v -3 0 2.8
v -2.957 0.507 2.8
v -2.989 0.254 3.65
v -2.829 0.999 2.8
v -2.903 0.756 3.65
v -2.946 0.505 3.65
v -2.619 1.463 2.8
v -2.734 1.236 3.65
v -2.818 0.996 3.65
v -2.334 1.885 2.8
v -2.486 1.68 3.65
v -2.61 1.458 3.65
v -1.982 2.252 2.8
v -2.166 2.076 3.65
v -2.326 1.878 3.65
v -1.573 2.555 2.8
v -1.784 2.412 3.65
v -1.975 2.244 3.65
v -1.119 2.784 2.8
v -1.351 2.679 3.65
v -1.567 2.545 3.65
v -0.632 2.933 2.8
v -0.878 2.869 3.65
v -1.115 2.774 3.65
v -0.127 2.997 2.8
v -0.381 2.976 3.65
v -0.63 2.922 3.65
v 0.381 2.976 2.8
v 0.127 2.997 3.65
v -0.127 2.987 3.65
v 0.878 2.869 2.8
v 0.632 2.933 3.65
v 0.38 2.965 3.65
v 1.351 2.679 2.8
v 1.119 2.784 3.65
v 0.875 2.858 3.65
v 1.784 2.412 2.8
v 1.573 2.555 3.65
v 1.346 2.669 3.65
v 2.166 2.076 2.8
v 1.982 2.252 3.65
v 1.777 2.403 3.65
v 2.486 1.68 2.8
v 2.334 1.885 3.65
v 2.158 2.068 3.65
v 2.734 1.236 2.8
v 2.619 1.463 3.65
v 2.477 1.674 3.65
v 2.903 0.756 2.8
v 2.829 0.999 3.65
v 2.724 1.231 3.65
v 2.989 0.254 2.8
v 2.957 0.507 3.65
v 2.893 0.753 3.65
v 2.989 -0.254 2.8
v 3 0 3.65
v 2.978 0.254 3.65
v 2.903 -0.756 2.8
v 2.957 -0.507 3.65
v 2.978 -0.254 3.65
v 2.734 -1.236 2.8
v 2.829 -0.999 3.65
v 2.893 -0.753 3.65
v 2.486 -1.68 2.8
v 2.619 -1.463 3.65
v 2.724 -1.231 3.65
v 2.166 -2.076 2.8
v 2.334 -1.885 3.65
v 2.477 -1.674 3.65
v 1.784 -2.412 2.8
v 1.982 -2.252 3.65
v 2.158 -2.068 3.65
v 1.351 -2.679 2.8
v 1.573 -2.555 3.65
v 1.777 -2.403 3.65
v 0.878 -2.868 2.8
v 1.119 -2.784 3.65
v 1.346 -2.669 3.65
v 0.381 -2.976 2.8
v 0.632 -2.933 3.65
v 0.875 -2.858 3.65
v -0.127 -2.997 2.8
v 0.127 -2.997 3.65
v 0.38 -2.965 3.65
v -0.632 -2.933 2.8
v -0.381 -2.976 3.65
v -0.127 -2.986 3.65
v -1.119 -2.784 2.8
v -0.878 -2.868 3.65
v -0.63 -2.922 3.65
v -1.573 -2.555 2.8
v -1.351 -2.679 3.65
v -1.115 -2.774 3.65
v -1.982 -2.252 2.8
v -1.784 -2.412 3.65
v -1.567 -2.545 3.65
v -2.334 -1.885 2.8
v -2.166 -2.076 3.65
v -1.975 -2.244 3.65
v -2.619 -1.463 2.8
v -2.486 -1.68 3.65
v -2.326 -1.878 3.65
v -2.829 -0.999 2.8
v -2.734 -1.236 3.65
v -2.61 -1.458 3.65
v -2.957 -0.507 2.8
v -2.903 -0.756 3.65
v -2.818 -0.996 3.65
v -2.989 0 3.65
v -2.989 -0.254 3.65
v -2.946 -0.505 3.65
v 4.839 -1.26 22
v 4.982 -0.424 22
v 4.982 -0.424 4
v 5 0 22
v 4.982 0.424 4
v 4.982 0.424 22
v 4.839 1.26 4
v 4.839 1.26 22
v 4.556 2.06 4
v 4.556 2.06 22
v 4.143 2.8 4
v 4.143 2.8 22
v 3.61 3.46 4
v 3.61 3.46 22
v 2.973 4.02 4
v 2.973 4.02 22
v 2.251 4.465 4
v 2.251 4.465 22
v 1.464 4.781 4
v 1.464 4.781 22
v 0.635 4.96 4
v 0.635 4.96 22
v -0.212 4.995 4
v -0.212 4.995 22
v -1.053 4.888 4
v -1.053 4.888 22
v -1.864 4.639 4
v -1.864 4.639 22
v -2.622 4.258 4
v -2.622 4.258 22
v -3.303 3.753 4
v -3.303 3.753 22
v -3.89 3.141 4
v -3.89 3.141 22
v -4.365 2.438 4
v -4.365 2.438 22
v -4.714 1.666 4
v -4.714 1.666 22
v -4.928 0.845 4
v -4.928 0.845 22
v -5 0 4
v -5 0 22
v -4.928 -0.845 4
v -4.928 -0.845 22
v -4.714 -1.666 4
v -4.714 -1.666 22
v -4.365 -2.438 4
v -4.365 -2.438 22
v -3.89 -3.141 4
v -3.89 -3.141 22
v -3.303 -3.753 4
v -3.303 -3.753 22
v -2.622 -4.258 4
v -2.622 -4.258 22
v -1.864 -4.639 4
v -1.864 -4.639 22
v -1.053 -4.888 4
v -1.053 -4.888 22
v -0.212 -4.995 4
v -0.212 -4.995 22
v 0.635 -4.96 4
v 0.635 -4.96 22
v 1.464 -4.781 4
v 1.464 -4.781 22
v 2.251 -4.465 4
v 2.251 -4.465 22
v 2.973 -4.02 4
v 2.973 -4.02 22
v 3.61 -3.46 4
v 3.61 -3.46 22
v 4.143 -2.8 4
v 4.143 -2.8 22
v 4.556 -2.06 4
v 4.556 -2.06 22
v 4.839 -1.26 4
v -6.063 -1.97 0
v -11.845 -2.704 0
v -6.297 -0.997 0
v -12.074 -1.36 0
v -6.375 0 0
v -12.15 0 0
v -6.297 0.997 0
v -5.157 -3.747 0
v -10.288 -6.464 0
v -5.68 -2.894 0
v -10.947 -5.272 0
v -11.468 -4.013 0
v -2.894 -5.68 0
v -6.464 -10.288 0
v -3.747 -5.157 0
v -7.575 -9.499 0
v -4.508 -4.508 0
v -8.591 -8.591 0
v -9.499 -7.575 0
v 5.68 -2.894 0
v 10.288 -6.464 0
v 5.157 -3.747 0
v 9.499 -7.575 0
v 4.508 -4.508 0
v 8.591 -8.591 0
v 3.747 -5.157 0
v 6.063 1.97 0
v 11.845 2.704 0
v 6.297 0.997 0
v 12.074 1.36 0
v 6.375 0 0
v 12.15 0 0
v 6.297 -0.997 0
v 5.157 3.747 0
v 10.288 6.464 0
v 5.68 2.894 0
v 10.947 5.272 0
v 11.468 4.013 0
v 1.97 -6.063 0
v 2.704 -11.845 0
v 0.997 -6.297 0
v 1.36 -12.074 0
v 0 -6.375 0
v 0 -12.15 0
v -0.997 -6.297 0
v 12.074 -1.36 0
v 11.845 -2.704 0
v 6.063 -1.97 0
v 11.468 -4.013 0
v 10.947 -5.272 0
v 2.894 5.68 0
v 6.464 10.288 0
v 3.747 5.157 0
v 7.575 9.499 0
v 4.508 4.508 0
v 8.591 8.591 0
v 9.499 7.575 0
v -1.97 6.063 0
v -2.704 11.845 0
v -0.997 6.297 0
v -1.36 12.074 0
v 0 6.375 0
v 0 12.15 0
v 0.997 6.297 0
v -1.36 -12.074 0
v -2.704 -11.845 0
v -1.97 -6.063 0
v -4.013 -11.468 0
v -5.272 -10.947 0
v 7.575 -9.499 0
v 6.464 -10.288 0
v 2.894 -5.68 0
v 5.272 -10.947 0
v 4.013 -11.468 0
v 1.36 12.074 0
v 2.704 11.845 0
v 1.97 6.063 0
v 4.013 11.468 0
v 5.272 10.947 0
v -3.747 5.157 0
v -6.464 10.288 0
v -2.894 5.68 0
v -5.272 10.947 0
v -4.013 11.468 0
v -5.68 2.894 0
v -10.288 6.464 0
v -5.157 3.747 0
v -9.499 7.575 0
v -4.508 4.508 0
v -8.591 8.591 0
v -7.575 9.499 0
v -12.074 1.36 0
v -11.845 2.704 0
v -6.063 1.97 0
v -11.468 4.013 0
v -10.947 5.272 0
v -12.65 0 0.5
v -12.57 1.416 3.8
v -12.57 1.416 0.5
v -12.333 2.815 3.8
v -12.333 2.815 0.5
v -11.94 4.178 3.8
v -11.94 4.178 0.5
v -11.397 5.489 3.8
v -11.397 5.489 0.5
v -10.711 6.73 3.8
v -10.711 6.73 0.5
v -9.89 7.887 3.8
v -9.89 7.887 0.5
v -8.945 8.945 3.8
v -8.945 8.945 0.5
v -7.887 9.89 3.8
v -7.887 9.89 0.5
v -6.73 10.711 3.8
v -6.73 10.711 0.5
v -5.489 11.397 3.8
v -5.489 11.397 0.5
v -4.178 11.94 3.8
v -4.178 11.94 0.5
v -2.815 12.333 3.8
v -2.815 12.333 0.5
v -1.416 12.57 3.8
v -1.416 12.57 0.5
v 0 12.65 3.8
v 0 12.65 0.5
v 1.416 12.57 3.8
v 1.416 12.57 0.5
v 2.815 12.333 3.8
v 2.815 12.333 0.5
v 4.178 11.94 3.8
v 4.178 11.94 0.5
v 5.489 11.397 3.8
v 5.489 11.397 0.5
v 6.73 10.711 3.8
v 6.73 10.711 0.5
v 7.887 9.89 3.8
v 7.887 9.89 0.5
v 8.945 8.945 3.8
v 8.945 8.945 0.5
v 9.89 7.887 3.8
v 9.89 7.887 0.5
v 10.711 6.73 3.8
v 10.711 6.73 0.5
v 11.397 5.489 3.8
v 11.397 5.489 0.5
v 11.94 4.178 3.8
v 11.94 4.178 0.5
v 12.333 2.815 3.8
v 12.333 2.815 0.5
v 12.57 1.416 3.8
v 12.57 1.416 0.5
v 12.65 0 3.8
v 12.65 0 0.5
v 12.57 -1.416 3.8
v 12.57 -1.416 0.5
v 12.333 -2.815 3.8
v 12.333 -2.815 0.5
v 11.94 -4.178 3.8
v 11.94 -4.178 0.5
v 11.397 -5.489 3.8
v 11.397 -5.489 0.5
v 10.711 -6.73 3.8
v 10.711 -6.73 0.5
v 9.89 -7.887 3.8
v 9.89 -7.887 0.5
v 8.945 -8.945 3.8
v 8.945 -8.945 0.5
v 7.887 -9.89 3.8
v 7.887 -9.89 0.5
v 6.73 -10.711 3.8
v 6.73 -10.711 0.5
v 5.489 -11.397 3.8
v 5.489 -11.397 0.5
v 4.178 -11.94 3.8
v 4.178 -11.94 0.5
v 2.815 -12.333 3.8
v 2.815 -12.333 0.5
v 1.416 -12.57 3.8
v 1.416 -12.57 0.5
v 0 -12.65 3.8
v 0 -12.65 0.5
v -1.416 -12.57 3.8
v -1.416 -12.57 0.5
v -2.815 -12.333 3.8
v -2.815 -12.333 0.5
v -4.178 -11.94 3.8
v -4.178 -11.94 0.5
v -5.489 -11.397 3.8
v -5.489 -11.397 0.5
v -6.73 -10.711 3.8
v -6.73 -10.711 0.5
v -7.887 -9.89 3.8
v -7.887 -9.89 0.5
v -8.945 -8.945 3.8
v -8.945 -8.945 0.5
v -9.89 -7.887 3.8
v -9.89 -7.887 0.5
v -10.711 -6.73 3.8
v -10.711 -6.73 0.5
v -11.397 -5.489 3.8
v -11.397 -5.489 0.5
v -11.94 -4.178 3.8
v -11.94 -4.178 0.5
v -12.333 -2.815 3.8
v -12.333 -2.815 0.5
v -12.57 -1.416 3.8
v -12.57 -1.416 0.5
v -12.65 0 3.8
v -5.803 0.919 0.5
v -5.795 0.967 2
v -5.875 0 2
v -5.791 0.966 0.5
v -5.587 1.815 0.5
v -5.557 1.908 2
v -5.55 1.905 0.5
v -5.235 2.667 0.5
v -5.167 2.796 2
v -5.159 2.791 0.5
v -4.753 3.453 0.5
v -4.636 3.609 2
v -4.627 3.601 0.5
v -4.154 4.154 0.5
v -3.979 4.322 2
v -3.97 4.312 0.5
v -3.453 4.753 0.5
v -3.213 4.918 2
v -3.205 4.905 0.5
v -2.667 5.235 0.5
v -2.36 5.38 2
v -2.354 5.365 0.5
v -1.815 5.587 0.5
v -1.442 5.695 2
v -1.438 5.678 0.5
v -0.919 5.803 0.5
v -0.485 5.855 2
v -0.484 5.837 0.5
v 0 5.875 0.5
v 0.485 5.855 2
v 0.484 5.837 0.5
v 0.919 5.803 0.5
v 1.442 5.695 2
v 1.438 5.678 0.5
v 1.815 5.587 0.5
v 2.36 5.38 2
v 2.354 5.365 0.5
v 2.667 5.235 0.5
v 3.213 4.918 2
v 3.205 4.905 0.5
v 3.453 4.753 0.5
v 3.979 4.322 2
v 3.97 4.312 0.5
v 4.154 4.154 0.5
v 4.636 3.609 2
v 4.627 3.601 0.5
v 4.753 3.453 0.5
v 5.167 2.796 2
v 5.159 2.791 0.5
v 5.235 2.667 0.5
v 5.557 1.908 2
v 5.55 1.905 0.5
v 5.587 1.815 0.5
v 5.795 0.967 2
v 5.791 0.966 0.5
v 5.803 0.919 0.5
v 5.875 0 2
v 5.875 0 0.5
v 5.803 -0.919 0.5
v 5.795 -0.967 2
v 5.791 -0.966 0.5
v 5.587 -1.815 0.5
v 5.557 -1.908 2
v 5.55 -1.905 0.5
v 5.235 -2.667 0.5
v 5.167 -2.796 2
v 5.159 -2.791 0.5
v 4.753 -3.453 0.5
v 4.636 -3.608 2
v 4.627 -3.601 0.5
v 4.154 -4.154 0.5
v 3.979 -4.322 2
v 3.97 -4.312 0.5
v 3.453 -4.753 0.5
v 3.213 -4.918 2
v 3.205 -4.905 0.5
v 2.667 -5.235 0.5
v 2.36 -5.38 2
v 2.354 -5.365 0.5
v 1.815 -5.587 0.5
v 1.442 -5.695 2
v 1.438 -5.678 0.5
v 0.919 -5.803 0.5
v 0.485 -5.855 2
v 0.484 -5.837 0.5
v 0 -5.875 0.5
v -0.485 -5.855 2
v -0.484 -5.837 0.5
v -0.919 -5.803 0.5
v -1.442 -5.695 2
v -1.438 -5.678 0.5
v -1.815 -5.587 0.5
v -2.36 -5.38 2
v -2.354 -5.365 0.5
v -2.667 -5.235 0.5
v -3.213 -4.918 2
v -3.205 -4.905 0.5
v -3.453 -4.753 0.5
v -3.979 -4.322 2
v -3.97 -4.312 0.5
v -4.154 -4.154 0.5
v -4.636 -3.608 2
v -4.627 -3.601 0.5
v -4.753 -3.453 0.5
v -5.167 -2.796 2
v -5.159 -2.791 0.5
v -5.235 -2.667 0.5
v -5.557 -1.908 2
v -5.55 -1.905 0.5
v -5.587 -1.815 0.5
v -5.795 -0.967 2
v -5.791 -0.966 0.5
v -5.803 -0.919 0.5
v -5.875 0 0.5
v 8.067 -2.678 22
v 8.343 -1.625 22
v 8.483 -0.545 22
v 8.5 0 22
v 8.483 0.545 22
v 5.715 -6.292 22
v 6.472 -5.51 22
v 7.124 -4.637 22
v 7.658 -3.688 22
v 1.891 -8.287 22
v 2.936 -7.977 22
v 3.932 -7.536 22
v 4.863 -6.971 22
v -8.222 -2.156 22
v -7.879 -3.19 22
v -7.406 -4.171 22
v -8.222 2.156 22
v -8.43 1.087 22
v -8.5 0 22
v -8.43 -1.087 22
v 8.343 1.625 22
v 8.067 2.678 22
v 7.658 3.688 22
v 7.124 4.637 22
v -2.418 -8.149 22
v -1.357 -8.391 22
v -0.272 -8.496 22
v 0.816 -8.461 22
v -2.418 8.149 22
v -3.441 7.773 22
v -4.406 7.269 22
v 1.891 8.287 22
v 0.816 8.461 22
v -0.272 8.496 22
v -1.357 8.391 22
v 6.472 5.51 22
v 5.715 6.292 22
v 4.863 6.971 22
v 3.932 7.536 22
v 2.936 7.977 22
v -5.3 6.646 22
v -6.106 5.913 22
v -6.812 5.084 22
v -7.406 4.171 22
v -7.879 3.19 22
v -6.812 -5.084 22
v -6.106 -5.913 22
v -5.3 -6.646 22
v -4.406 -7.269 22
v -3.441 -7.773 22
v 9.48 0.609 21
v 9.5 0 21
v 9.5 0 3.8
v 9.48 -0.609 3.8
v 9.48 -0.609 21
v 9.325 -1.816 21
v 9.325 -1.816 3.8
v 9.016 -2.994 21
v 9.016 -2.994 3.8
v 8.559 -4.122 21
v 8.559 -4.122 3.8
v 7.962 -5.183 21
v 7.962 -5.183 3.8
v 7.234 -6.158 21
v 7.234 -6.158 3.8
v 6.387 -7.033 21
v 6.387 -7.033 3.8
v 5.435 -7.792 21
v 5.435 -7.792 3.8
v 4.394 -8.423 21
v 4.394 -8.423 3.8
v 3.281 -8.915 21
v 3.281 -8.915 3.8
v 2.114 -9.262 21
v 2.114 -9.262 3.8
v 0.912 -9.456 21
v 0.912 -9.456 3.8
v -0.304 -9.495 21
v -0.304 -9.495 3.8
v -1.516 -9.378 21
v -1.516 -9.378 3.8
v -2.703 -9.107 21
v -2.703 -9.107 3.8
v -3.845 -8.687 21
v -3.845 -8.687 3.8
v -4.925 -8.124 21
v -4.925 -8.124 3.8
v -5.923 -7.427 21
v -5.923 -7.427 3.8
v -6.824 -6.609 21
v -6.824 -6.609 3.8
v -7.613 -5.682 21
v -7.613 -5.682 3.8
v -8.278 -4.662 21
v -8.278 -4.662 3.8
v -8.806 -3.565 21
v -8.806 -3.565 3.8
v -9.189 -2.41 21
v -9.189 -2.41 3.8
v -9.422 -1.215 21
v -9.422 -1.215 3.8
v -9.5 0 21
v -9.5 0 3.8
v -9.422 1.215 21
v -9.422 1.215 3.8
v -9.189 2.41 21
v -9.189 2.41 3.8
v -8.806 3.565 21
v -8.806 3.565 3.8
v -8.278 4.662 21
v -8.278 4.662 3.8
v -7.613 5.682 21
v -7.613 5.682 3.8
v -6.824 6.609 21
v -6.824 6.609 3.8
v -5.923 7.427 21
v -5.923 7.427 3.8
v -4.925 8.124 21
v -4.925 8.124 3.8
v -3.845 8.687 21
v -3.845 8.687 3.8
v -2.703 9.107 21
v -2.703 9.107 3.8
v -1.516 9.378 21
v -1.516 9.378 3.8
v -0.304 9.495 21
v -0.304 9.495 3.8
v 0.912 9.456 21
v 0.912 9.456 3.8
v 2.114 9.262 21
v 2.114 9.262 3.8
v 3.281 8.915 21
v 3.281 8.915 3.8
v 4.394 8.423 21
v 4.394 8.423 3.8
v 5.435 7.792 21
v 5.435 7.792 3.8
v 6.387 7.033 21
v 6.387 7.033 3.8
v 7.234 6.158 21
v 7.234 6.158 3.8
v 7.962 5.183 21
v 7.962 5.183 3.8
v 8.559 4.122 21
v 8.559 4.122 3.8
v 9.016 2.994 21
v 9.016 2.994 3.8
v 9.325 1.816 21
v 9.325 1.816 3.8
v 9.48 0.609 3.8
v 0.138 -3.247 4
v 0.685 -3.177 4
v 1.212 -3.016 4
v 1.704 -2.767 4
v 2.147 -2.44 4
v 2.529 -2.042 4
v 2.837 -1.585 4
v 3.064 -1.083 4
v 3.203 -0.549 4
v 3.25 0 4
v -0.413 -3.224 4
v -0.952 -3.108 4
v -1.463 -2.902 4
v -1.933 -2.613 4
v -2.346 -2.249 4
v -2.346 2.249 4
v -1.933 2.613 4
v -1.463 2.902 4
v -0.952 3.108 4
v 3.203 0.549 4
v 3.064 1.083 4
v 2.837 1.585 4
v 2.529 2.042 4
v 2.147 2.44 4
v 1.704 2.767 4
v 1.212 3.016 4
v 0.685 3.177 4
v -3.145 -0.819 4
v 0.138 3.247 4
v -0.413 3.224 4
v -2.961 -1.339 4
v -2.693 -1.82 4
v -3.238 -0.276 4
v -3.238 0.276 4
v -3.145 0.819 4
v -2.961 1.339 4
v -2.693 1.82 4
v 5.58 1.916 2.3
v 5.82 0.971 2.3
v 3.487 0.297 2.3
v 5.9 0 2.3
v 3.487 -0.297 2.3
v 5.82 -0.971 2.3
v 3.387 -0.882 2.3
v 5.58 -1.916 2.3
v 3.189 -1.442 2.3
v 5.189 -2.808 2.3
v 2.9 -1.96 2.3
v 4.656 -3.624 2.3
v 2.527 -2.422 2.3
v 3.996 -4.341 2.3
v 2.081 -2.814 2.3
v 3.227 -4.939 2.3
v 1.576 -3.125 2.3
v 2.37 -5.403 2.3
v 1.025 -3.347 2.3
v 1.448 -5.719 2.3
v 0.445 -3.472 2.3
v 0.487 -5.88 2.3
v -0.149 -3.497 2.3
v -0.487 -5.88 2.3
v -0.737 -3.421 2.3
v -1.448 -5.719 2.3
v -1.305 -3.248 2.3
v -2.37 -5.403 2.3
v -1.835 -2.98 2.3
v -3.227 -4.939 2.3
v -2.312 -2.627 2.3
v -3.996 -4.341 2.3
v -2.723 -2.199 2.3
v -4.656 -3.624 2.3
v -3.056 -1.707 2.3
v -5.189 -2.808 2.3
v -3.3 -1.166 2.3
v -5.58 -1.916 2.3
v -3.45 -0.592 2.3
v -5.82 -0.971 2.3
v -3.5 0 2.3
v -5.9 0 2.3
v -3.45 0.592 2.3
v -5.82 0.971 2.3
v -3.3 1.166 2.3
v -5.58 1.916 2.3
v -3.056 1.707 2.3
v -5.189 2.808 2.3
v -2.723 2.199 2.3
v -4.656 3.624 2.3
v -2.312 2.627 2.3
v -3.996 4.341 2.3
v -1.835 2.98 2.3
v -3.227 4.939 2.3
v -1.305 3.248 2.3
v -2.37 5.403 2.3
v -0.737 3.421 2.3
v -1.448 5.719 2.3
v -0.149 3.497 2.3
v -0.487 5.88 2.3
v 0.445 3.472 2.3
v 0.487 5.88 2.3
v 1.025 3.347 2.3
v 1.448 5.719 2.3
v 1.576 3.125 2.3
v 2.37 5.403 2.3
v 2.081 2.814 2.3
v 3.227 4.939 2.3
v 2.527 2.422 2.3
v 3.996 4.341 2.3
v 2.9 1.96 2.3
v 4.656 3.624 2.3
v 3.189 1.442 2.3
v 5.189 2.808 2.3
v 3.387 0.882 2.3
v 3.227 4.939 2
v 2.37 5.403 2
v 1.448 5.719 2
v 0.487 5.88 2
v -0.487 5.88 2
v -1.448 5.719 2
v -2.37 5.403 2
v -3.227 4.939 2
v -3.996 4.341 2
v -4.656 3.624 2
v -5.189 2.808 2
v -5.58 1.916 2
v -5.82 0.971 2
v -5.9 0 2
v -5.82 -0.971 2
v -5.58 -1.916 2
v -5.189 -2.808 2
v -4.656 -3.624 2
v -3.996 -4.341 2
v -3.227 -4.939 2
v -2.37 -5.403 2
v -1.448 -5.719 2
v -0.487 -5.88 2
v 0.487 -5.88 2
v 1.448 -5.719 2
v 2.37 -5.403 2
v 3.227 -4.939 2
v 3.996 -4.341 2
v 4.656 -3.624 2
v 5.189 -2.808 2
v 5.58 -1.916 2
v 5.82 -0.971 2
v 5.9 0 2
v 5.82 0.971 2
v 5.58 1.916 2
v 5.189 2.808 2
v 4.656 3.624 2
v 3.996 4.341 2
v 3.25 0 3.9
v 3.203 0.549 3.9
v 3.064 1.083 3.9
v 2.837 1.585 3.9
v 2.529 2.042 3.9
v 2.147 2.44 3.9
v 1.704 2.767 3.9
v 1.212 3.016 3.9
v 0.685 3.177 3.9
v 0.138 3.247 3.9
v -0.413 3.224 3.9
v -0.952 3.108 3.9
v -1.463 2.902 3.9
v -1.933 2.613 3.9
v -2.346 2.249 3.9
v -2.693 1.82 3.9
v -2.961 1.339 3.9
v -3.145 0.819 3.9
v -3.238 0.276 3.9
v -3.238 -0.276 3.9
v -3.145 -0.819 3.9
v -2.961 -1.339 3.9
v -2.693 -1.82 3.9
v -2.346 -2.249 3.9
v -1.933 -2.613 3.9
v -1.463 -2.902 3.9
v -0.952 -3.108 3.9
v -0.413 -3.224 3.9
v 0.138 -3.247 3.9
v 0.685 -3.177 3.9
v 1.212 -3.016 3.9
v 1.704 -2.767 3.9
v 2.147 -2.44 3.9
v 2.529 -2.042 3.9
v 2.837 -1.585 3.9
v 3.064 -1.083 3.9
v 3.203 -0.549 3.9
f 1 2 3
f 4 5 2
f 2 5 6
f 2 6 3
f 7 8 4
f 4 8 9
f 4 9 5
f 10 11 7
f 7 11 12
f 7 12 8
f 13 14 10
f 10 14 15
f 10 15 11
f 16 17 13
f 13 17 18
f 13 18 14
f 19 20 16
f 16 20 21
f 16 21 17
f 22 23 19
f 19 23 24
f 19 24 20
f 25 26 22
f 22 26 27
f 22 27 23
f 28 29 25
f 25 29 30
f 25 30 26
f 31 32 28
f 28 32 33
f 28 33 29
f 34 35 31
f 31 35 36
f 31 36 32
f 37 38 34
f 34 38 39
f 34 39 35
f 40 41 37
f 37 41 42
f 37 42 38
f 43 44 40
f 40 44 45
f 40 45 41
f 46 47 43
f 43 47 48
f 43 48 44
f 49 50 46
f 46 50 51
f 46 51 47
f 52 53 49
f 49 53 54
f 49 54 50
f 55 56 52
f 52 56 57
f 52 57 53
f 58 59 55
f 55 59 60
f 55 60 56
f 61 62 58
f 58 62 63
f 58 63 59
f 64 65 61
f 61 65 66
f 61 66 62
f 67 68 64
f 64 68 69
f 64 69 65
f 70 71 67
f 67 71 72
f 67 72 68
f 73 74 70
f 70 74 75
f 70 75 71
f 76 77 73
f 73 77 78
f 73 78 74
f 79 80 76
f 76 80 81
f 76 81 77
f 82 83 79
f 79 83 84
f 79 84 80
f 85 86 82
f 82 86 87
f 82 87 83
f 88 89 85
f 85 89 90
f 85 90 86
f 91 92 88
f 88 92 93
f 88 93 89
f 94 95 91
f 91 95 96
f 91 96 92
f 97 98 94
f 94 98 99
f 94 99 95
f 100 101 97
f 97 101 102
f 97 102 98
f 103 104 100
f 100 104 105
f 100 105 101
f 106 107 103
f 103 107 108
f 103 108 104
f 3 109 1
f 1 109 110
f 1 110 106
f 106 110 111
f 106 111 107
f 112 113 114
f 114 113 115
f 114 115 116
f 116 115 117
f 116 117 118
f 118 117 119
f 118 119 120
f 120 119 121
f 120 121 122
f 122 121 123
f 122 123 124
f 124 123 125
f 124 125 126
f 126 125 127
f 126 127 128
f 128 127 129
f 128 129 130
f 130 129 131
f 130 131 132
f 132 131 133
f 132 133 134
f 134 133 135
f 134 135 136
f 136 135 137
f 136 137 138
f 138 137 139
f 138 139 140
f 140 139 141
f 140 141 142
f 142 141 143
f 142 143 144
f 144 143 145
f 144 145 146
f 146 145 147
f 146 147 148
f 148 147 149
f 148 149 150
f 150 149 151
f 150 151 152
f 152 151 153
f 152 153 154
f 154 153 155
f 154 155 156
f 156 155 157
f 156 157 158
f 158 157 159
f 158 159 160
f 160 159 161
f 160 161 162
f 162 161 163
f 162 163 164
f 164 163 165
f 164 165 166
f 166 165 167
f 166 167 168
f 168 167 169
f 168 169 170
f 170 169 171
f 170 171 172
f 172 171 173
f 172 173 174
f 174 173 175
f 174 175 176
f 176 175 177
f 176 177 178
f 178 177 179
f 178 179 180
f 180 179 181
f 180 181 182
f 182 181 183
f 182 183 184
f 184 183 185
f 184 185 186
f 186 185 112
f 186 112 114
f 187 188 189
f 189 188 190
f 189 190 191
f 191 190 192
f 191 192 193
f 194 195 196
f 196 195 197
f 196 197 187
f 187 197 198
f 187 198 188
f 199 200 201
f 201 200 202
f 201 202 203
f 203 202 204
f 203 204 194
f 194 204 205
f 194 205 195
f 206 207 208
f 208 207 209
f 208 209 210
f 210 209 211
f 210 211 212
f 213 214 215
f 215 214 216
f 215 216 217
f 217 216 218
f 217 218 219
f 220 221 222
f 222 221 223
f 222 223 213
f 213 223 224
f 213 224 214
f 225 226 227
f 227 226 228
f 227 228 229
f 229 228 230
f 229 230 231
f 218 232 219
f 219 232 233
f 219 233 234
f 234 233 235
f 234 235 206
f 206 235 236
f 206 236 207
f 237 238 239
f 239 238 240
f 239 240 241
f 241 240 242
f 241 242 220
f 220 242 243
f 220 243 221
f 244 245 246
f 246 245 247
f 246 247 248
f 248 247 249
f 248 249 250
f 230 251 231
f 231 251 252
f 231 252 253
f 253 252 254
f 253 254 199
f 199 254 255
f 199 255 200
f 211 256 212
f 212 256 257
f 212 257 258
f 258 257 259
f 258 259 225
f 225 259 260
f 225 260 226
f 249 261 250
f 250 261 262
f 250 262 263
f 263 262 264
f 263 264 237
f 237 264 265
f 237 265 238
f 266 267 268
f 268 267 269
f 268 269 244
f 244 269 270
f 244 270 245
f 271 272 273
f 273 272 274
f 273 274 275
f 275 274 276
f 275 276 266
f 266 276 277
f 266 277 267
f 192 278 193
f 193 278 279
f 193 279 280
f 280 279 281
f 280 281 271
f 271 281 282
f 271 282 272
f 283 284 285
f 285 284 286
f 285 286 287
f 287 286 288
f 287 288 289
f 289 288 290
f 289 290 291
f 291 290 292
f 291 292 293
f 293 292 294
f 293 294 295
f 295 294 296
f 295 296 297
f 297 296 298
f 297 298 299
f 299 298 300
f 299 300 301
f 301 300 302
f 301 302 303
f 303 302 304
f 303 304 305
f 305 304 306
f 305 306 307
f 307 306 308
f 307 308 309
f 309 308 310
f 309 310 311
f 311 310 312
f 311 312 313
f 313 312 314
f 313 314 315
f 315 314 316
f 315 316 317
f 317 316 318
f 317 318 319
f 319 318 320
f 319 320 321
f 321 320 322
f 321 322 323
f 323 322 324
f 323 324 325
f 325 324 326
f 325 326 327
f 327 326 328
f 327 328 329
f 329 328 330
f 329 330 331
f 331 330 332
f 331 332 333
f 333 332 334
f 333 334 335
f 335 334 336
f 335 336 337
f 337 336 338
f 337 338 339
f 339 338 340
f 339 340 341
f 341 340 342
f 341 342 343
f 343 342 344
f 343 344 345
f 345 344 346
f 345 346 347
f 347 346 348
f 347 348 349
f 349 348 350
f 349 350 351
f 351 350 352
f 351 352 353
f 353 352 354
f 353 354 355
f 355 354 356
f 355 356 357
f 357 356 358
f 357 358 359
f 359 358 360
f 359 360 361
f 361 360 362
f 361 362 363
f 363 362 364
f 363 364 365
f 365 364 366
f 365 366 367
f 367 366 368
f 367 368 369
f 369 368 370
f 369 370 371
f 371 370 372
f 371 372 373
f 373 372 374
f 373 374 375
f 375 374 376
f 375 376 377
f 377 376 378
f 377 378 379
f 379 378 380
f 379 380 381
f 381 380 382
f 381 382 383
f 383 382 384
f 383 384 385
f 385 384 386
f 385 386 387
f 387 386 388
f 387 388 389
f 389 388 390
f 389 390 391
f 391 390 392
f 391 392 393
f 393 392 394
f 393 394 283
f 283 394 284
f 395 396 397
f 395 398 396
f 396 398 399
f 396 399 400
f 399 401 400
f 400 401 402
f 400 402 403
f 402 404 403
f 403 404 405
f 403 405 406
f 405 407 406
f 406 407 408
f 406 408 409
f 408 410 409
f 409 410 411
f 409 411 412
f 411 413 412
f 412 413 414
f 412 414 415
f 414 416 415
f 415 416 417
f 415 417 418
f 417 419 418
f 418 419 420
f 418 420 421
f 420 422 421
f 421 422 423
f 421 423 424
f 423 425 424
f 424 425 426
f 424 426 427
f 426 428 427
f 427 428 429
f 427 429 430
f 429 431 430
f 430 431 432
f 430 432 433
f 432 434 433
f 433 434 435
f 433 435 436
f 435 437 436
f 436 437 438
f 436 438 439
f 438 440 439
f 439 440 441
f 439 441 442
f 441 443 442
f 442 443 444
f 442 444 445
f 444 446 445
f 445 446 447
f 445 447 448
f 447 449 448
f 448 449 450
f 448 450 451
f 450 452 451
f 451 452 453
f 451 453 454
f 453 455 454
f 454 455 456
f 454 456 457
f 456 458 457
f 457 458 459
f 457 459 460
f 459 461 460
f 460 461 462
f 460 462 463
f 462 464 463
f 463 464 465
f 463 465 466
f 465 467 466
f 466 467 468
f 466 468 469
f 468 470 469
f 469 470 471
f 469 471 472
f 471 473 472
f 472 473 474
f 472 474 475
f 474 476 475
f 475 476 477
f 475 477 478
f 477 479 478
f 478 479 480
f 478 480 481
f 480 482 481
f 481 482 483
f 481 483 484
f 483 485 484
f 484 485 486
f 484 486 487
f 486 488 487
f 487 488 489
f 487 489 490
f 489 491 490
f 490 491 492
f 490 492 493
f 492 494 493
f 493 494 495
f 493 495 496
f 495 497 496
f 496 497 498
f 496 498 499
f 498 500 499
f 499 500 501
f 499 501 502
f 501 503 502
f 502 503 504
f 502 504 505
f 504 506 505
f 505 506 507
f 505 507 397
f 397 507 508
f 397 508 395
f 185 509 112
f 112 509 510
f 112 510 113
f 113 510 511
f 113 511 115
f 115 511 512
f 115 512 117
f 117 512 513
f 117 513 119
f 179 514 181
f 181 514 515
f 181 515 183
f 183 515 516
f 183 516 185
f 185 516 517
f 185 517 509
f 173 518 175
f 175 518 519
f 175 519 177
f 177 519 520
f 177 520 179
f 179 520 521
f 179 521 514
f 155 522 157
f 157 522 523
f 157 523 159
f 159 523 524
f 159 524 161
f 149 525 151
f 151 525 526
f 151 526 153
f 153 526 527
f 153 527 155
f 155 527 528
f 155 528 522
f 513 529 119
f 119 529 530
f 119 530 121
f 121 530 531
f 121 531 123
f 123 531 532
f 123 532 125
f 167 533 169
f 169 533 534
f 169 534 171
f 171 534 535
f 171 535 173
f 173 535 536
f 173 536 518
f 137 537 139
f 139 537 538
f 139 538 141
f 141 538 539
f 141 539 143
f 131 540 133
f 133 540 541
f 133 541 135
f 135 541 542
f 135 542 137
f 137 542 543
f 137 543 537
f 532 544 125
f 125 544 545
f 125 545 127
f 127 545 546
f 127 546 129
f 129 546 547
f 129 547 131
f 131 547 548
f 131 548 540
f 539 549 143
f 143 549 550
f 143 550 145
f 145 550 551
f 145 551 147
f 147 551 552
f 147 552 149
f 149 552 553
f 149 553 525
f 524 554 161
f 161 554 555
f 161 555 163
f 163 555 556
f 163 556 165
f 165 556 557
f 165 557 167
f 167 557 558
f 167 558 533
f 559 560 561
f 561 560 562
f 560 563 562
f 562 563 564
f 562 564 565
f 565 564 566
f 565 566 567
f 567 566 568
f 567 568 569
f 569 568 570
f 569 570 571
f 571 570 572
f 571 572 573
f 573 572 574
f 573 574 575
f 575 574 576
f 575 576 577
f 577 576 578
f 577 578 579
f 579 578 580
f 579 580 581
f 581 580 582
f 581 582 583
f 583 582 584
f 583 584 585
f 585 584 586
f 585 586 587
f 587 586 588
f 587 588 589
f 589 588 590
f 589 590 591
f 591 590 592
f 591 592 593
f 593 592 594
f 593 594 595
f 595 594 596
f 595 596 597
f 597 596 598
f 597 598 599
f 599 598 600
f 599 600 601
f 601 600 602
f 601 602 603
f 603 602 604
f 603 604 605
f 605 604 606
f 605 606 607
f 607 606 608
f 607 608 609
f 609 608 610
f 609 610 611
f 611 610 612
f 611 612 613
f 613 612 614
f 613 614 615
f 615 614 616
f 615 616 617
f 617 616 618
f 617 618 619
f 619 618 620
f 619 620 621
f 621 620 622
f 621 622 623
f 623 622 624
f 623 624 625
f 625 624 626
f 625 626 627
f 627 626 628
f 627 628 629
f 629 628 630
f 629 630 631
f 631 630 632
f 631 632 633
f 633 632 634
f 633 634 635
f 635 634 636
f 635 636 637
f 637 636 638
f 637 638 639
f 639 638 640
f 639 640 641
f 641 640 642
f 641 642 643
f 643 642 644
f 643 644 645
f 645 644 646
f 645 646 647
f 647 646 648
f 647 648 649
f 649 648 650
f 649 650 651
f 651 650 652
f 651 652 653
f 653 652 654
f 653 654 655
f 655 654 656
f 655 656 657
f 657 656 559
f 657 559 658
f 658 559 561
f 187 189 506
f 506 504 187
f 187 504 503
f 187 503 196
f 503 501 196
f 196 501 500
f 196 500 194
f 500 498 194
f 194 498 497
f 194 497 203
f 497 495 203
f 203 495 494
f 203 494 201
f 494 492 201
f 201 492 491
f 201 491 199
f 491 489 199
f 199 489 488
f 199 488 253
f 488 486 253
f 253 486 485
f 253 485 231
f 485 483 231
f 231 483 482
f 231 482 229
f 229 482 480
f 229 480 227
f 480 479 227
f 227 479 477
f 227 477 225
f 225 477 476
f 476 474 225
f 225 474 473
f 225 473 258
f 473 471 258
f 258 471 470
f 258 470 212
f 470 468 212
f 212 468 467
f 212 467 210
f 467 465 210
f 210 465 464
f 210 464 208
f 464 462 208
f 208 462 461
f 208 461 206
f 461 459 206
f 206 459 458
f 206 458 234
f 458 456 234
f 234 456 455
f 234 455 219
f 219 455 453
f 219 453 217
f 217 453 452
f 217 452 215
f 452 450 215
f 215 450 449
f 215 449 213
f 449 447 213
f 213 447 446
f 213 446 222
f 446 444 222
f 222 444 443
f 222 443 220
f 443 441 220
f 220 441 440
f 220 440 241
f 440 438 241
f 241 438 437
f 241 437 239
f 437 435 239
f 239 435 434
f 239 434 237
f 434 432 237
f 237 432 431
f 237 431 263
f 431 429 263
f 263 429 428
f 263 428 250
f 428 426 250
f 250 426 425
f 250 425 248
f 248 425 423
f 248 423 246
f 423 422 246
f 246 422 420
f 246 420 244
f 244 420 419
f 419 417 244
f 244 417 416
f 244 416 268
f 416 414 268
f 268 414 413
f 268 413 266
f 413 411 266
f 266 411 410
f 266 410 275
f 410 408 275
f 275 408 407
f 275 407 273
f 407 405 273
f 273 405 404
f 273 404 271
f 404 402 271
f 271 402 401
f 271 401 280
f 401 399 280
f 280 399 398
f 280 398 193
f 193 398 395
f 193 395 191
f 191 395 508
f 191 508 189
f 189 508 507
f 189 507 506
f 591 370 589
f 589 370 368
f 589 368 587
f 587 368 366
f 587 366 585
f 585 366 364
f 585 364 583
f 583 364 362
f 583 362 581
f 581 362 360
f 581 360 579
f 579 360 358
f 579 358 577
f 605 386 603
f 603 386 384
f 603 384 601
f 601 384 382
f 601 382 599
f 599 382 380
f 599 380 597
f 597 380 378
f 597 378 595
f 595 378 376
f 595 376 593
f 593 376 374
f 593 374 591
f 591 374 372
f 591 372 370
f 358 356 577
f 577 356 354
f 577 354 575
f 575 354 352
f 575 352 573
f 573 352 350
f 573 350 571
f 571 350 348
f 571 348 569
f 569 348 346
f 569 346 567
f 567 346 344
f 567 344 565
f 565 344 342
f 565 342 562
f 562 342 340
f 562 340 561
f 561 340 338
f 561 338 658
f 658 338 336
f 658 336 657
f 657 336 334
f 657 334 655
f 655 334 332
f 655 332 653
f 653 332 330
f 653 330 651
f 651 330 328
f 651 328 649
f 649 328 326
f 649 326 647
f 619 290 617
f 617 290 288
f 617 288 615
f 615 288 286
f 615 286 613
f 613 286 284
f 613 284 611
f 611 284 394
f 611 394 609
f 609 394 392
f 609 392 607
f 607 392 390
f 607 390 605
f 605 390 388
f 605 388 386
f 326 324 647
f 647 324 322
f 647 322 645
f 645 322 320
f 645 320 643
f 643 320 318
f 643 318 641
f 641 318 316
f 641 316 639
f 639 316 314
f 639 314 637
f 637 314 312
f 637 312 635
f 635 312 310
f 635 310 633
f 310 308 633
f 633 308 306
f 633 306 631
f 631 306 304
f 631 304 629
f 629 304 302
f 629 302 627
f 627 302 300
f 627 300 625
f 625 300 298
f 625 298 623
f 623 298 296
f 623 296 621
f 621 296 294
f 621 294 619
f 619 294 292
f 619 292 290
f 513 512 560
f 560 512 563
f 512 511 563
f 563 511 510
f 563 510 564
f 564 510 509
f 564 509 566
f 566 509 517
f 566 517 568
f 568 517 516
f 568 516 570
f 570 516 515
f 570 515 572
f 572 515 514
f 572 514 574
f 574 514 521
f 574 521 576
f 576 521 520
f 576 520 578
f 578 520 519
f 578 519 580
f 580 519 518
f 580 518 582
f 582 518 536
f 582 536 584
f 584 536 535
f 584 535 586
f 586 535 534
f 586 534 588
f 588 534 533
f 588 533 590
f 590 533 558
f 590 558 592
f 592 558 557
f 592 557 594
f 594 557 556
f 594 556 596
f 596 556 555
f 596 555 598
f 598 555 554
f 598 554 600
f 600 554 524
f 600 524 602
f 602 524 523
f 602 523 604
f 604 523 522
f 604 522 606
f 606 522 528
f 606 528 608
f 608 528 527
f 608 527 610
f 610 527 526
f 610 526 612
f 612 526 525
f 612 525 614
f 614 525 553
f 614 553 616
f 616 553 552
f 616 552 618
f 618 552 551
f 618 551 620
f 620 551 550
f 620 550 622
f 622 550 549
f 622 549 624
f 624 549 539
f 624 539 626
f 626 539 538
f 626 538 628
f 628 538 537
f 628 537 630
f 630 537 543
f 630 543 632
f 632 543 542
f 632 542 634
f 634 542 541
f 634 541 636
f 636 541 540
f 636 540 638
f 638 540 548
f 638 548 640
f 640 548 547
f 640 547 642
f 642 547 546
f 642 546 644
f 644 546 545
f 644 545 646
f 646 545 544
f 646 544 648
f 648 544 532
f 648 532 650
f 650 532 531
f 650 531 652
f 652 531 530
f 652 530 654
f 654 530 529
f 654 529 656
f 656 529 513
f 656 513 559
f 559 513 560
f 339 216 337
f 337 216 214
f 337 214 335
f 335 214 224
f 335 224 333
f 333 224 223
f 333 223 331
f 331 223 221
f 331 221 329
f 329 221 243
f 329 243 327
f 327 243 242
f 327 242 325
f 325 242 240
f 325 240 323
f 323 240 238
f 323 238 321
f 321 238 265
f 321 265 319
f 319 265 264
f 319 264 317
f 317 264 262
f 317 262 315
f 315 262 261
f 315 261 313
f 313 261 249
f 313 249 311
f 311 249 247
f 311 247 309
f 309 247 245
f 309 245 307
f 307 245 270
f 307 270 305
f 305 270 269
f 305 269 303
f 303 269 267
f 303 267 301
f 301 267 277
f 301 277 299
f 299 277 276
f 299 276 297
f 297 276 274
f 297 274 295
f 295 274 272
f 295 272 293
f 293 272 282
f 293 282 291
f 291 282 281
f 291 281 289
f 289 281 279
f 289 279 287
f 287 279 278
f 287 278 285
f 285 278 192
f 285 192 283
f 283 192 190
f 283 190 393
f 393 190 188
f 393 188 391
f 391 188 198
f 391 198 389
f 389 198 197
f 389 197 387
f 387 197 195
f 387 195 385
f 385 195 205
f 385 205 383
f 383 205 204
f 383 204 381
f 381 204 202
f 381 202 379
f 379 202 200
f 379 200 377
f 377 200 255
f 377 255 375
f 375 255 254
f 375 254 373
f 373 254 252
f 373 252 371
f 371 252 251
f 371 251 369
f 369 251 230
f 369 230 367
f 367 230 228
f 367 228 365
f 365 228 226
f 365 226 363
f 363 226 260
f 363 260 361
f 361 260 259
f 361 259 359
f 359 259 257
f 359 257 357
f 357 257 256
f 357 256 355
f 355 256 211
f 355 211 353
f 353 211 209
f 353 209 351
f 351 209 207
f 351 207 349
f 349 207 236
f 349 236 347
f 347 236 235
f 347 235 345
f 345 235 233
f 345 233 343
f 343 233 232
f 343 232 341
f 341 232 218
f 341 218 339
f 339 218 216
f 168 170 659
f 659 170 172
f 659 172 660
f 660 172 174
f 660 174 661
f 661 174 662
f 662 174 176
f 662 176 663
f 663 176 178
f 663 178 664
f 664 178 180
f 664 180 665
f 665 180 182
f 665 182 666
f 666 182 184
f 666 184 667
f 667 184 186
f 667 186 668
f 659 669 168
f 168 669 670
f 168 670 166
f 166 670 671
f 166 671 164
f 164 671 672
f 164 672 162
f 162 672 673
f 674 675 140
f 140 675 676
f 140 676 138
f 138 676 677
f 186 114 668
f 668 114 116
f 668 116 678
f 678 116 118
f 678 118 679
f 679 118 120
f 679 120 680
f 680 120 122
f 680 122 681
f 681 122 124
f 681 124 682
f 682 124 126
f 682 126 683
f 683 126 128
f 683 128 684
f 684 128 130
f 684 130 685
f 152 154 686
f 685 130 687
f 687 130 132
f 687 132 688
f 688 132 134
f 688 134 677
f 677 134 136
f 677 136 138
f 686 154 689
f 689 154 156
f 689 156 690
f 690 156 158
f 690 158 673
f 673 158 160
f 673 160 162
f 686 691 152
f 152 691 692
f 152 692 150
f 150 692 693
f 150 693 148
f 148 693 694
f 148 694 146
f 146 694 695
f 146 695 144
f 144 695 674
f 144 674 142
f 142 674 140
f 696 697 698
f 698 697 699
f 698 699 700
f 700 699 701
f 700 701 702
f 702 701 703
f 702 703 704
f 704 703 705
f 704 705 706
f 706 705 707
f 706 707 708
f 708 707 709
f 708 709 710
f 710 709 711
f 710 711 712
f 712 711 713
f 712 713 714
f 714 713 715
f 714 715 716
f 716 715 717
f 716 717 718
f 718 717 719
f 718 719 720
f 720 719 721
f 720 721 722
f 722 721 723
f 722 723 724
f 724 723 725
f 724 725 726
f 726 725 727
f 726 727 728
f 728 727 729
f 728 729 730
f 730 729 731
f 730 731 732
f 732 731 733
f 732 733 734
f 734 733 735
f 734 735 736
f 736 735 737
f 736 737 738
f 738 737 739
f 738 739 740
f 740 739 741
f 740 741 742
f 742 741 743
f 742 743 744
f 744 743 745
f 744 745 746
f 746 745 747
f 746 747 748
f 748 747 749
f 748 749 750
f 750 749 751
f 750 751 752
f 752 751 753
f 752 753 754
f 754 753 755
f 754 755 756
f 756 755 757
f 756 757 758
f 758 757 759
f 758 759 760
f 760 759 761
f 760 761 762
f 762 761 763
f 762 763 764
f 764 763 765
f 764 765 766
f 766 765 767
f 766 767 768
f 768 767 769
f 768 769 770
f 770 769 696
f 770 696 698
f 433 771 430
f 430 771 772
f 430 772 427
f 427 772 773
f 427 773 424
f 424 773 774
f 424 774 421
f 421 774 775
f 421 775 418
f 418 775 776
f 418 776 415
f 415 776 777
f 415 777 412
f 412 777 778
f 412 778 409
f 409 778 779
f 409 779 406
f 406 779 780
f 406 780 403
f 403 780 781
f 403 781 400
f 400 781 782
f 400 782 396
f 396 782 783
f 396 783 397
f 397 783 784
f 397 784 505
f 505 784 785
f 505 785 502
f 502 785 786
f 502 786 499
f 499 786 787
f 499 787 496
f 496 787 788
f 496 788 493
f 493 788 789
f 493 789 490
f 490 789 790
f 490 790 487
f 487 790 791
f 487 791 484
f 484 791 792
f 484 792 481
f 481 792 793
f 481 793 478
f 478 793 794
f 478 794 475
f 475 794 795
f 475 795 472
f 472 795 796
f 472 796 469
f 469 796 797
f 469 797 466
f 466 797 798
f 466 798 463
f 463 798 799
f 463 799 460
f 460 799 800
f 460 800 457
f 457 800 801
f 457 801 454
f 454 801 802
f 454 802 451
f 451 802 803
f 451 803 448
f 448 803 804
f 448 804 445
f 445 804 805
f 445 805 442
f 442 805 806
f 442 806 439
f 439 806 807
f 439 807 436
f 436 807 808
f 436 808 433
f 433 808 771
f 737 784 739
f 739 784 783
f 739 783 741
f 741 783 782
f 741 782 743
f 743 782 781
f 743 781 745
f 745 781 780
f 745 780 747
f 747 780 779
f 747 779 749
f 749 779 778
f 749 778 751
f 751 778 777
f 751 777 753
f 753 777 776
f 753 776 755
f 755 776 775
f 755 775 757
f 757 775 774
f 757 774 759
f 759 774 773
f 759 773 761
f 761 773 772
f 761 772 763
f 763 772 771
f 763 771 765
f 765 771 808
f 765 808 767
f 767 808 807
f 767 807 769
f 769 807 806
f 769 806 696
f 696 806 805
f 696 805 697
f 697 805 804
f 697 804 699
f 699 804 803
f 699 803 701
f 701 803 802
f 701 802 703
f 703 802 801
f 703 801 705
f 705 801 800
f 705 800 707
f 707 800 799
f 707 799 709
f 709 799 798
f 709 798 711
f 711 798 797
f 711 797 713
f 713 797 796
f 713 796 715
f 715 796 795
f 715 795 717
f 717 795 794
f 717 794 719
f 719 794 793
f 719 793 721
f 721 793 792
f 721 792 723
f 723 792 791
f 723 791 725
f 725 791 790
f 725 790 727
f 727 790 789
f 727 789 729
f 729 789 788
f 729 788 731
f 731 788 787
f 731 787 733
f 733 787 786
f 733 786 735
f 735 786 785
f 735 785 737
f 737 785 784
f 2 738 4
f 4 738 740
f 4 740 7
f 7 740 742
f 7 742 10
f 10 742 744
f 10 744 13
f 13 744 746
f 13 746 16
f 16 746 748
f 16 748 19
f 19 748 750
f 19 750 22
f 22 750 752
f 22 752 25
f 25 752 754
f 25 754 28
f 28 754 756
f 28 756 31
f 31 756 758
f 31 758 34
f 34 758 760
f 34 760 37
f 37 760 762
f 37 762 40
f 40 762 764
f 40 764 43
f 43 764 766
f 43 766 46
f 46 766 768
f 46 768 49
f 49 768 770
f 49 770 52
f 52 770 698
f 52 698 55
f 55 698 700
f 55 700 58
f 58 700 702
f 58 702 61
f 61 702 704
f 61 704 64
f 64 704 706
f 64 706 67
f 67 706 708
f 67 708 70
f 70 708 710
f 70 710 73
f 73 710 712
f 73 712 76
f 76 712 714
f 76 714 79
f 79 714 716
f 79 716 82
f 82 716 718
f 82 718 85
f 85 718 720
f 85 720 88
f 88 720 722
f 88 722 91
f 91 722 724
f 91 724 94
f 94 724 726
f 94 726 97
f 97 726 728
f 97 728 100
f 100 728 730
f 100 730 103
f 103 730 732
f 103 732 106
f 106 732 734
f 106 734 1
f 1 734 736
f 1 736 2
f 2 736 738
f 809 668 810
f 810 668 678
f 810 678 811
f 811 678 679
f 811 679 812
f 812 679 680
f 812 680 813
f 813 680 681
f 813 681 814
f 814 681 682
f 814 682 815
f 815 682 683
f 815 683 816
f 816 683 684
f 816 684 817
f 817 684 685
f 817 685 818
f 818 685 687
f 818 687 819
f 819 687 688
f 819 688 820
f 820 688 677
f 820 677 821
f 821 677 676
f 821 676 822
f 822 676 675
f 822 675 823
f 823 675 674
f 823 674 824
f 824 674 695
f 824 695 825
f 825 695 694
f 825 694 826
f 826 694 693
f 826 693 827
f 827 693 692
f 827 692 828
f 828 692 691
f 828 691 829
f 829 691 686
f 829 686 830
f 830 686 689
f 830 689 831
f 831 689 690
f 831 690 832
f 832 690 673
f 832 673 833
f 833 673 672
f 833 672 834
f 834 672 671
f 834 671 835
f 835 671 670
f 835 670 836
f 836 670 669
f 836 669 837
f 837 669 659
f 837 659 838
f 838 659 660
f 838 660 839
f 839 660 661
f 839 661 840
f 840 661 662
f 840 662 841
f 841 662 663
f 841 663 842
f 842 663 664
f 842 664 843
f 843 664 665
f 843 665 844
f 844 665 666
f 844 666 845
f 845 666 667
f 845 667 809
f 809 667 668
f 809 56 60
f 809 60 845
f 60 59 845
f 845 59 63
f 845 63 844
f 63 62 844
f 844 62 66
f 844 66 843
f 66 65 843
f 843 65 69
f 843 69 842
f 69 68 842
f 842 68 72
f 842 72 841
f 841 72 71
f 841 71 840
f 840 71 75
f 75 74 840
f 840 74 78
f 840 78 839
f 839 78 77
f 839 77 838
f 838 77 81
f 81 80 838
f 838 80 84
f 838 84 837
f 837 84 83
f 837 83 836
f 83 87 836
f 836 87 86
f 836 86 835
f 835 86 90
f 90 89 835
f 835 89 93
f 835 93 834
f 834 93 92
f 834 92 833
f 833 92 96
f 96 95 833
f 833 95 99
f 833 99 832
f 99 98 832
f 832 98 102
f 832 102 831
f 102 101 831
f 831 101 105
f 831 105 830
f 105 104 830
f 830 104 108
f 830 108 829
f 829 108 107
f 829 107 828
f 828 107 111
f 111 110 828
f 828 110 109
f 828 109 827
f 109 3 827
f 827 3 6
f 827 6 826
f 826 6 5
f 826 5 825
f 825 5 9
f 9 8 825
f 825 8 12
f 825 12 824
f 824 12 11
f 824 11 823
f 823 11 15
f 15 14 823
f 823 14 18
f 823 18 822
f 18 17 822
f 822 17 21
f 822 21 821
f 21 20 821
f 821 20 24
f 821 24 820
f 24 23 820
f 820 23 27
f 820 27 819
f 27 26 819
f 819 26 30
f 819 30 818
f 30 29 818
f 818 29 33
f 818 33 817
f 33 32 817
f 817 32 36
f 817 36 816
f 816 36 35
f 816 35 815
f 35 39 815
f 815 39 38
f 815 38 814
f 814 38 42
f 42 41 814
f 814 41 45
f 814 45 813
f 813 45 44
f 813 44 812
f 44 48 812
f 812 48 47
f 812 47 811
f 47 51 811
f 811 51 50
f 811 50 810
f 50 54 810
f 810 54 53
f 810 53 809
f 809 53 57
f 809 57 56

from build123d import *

# Parameters (mm, degrees)
SKETCH_1_R          = 12.65
SKETCH_1_R_2        = 5.875
EXTRUDE_1_DEPTH     = 2
SKETCH_2_R          = 9.5
SKETCH_2_R_2        = 5
EXTRUDE_2_DEPTH     = 20
CHAMFER_1_SIZE      = 0.5
SKETCH_3_R          = 12.65
SKETCH_3_R_2        = 9.5
EXTRUDE_3_DEPTH     = 1.8
CHAMFER_2_SIZE      = 1
CHAMFER_4_SIZE      = 0.5
SKETCH_4_R          = 5
SKETCH_4_R_2        = 3
EXTRUDE_4_DEPTH     = 2
SKETCH_7_R          = 5.9
CUT_EXTRUDE_1_DEPTH = 0.3
CHAMFER_5_SIZE      = 0.5
SKETCH_8_R          = 3.25
CUT_EXTRUDE_2_DEPTH = 0.6
CHAMFER_6_SIZE      = 0.5


with BuildPart() as part:
    # 스케치1 → 보스-돌출1 (new body)
    with BuildSketch(Plane.XY):
        Circle(SKETCH_1_R)
        Circle(SKETCH_1_R_2, mode=Mode.SUBTRACT)
    extrude(amount=EXTRUDE_1_DEPTH)

    # 스케치2 → 보스-돌출2 (add)
    with BuildSketch(Plane.XY.offset(2)):
        Circle(SKETCH_2_R)
        Circle(SKETCH_2_R_2, mode=Mode.SUBTRACT)
    extrude(amount=EXTRUDE_2_DEPTH)

    # 모따기1
    chamfer_1_edges = [part.edges().sort_by_distance(p)[0] for p in [
        (-5.875, 0, 0),
    ]]
    chamfer(chamfer_1_edges, length=CHAMFER_1_SIZE)

    # 스케치3 → 보스-돌출3 (add)
    with BuildSketch(Plane.XY.offset(2)):
        Circle(SKETCH_3_R)
        Circle(SKETCH_3_R_2, mode=Mode.SUBTRACT)
    extrude(amount=EXTRUDE_3_DEPTH)

    # 모따기2
    chamfer_2_edges = [part.edges().sort_by_distance(p)[0] for p in [
        (-9.5, 0, 22),
    ]]
    chamfer(chamfer_2_edges, length=CHAMFER_2_SIZE)

    # 모따기4
    chamfer_4_edges = [part.edges().sort_by_distance(p)[0] for p in [
        (-12.65, 0, 0),
    ]]
    chamfer(chamfer_4_edges, length=CHAMFER_4_SIZE)

    # 스케치4 → 보스-돌출4 (add)
    with BuildSketch(Plane(origin=(0, 0, 2), x_dir=(-1, 0, 0), z_dir=(0, 0, -1))):
        Circle(SKETCH_4_R)
        Circle(SKETCH_4_R_2, mode=Mode.SUBTRACT)
    extrude(amount=-EXTRUDE_4_DEPTH)

    # 스케치7 → 컷-돌출1 (cut)
    with BuildSketch(Plane(origin=(0, 0, 2), x_dir=(-1, 0, 0), z_dir=(0, 0, -1))):
        Circle(SKETCH_7_R)
    extrude(amount=-CUT_EXTRUDE_1_DEPTH, mode=Mode.SUBTRACT)

    # 모따기5
    chamfer_5_edges = [part.edges().sort_by_distance(p)[0] for p in [
        (3, 0, 2.3),
    ]]
    chamfer(chamfer_5_edges, length=CHAMFER_5_SIZE)

    # 스케치8 → 컷-돌출2 (cut)
    with BuildSketch(Plane.XY.offset(4)):
        Circle(SKETCH_8_R)
    extrude(amount=-CUT_EXTRUDE_2_DEPTH, mode=Mode.SUBTRACT)

    # 모따기6
    # the kernel refuses this chamfer: 0.5 mm, written as the material it adds along each edge
    with BuildSketch(Plane(origin=(0, 0, 3.4), x_dir=(1, 0, 0), z_dir=(0, -1, 0))) as chamfer_6_piece_1_section:
        Polygon((3.25 - CHAMFER_6_SIZE, 0), (3.25, CHAMFER_6_SIZE), (3.25, 0), align=None)
    chamfer_6_piece_1 = revolve(axis=Axis((0, 0, 3.4), (0, 0, 1)), mode=Mode.PRIVATE)
    chamfer_6_piece_1 = chamfer_6_piece_1 - Plane(origin=(0, 0, 3.773130842), x_dir=(-1, 0, 0), z_dir=(0, 0, -1)) * Cylinder(3, 13, mode=Mode.PRIVATE)
    add(chamfer_6_piece_1)


solid = part.part
